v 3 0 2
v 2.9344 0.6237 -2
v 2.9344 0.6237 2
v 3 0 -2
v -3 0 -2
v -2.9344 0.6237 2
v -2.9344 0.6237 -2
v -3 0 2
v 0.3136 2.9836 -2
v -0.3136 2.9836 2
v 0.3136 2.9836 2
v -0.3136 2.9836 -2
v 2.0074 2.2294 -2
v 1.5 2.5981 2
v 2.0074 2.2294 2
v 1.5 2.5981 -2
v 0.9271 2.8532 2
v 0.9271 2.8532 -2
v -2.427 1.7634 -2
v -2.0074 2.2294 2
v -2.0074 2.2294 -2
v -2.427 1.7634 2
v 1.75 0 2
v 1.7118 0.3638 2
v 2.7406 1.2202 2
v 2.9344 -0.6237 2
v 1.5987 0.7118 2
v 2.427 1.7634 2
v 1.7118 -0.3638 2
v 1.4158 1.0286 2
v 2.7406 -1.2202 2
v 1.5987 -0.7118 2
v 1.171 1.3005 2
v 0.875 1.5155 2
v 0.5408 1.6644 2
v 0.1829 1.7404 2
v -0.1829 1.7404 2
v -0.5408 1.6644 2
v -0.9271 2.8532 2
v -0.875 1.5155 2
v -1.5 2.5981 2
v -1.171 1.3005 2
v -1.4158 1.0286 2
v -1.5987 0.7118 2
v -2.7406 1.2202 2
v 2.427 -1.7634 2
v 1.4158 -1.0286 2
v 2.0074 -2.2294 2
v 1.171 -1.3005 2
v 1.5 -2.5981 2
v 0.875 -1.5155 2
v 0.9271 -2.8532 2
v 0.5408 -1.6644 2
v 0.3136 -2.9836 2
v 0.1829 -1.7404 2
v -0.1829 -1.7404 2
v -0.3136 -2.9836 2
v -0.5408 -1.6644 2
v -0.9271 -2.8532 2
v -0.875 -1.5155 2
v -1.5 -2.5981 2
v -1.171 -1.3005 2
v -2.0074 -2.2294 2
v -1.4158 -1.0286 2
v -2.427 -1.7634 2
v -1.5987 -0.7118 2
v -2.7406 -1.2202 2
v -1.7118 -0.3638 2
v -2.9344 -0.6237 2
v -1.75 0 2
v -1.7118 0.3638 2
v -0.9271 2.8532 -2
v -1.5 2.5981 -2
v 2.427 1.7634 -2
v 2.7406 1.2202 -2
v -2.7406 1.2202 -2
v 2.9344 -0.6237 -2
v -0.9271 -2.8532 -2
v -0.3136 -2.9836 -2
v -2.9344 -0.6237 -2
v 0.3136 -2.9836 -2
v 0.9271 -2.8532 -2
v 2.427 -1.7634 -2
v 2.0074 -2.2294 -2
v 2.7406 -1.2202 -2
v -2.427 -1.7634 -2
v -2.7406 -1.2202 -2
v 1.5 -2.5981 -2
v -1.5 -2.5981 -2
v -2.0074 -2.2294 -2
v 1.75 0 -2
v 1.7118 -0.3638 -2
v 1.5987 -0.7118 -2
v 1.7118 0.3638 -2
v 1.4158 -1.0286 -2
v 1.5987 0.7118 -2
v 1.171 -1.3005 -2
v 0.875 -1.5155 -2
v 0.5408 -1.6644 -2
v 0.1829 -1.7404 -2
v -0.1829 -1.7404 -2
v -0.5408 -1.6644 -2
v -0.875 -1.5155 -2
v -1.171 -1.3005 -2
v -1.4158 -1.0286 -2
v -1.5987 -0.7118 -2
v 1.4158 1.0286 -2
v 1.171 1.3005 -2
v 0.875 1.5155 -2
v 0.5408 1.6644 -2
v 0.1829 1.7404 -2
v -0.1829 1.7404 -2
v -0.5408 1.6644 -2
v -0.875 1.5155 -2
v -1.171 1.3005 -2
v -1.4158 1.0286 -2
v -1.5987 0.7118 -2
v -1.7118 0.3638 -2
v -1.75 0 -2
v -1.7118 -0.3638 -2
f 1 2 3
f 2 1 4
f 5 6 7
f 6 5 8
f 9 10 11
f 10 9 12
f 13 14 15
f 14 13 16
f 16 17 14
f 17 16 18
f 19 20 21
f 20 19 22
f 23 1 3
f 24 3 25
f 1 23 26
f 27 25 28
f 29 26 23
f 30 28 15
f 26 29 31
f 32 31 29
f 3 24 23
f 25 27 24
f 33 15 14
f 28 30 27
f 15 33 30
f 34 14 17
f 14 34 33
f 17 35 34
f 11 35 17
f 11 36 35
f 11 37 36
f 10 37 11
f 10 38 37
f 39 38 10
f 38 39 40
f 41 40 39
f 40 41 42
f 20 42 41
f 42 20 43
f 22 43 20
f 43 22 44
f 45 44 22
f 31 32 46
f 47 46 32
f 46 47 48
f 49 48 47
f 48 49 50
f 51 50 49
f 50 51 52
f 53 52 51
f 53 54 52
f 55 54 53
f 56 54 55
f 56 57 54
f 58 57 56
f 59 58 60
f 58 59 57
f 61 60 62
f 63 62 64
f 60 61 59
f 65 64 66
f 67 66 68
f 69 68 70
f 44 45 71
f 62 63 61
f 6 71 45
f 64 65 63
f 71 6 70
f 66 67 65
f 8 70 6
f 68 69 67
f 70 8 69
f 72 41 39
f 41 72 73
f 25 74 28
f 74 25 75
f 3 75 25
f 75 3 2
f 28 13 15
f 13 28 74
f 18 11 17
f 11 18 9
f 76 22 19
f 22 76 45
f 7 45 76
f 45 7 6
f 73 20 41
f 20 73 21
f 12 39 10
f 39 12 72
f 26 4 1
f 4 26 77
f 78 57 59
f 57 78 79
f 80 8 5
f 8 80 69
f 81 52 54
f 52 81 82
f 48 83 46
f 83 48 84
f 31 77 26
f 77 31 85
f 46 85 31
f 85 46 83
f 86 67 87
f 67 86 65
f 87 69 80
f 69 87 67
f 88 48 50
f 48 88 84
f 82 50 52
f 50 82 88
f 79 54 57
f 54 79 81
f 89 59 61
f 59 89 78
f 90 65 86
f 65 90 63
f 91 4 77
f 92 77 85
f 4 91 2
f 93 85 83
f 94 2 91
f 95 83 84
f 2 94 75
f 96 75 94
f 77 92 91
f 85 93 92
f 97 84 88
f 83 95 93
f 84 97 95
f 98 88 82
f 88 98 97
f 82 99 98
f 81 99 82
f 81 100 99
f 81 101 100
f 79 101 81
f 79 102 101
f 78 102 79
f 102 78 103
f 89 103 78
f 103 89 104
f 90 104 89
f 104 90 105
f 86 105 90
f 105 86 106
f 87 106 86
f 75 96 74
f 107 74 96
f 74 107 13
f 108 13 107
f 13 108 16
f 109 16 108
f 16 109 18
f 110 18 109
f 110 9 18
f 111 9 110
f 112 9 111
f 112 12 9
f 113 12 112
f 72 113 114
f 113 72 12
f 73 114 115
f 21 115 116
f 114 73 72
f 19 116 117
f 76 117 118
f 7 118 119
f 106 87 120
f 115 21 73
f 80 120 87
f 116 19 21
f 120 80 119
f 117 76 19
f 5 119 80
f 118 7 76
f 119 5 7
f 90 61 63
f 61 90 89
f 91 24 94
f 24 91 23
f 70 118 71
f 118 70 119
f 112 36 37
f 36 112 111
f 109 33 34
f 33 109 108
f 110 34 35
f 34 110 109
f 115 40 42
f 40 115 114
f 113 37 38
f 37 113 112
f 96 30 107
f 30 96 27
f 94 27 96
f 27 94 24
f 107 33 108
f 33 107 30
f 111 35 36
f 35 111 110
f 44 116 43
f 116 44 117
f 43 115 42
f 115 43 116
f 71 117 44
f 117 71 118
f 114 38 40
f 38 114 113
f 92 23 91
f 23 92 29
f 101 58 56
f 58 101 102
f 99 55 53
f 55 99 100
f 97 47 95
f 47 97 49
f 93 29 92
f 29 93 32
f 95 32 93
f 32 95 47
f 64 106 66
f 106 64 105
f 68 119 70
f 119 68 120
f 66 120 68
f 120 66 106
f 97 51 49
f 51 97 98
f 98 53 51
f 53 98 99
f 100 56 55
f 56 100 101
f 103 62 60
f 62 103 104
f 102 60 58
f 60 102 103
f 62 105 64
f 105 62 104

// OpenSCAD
difference(){
    cylinder(r=3, h=4, center=true, $fs=0.1);
    cylinder(r=1.75, h=4, center=true, $fs=0.1);
}
